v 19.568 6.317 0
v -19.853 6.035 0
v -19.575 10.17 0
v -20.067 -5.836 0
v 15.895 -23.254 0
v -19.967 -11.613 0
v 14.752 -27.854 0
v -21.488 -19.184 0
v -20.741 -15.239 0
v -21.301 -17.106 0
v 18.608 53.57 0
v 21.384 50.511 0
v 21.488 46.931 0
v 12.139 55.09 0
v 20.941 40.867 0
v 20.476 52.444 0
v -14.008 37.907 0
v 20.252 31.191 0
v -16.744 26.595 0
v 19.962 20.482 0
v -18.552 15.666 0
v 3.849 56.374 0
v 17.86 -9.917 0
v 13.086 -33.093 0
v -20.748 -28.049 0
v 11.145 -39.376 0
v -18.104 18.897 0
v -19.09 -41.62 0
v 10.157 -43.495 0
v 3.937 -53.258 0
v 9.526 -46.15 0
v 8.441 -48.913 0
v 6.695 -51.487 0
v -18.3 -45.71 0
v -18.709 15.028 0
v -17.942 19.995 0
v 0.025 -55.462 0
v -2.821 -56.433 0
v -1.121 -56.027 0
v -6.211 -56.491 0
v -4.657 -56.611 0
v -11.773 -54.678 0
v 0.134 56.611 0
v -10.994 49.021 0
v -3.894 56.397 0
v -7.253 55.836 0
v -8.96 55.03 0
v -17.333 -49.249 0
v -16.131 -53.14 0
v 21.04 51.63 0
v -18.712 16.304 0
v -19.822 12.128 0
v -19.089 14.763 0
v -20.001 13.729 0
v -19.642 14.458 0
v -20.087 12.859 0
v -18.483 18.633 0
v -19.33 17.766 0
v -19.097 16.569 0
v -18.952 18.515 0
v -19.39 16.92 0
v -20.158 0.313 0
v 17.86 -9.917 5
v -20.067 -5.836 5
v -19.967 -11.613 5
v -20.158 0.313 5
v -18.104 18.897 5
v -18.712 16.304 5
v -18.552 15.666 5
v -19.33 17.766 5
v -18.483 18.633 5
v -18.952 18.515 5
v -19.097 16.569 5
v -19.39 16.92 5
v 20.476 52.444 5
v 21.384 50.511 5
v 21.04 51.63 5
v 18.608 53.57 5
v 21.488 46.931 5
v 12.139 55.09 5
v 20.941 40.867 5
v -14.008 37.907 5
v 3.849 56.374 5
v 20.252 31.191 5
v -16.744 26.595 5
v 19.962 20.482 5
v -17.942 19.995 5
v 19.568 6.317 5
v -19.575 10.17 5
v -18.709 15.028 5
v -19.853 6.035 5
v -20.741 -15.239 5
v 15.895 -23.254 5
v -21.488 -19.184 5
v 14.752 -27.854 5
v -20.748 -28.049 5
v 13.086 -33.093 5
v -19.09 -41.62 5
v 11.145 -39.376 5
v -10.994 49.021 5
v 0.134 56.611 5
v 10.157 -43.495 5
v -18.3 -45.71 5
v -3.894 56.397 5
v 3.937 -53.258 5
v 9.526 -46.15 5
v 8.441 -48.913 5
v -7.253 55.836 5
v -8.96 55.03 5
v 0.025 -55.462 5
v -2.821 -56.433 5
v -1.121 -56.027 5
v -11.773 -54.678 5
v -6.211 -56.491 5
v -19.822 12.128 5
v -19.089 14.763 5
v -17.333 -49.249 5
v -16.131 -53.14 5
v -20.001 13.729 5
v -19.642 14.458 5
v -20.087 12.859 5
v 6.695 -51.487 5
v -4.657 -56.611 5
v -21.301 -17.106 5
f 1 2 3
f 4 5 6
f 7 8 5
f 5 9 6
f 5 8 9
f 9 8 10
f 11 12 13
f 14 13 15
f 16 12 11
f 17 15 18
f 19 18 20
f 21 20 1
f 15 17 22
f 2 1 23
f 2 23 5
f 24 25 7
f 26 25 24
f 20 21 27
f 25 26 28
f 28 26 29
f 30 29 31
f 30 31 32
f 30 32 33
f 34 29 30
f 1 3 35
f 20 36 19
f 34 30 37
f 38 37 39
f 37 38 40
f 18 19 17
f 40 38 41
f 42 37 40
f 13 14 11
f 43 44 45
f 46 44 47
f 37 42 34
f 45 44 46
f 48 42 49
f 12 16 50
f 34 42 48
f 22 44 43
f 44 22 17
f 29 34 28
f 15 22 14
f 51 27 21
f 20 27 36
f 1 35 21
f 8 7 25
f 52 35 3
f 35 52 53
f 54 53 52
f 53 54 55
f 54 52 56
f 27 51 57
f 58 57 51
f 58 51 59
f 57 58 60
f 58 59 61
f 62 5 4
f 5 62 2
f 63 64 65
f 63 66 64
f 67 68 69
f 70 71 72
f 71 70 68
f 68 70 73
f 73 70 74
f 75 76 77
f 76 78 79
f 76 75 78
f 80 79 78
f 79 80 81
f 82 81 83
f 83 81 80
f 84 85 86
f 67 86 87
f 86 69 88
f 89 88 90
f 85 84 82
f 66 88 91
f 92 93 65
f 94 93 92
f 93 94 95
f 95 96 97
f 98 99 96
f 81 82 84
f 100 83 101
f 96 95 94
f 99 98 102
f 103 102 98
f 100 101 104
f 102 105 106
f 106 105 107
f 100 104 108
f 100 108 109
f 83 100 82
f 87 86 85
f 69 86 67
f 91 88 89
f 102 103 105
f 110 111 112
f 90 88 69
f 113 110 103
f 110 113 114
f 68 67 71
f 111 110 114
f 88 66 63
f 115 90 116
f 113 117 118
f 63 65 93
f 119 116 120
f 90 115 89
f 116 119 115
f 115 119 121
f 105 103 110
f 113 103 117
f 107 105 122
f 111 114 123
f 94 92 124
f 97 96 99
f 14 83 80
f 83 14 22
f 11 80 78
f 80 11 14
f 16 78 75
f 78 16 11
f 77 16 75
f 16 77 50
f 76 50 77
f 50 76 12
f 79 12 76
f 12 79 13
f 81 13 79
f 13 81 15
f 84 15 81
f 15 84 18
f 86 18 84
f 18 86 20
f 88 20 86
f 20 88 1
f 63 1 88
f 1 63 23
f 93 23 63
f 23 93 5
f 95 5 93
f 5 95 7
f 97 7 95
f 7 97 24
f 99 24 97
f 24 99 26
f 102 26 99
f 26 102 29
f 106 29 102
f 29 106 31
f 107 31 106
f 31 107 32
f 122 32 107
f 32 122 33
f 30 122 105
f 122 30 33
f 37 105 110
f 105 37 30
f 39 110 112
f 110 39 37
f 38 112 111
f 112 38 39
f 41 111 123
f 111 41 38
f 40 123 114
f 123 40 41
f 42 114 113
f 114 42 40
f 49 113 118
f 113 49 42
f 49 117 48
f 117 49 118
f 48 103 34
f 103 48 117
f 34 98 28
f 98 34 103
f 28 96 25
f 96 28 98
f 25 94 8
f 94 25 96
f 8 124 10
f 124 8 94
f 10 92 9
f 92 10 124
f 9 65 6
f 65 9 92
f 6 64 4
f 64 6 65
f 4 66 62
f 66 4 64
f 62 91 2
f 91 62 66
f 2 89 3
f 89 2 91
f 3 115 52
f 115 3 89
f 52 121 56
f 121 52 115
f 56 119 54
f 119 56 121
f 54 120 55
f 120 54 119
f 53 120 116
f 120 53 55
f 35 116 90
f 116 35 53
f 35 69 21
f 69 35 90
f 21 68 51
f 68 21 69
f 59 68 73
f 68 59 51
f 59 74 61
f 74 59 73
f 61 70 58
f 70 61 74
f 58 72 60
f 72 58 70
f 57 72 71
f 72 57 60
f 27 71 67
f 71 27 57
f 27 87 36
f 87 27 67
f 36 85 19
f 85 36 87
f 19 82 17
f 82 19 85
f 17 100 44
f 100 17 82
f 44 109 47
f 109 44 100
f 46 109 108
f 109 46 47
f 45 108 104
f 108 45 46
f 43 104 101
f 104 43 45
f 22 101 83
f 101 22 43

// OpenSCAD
// Generated by inkscape 0.0 + inkscape-paths2openscad 0.27
// Sun Oct 29 23:55:14 2023 from "halloween.tiff.svg"

// Module names are of the form poly_<inkscape-path-id>().  As a result,
// you can associate a polygon in this OpenSCAD program with the corresponding
// SVG element in the Inkscape document by looking for the XML element with
// the attribute id="inkscape-path-id".

// fudge value is used to ensure that subtracted solids are a tad taller
// in the z dimension than the polygon being subtracted from.  This helps
// keep the resulting .stl file manifold.
fudge = 0.1;
user_unit_scale_x = 1.0;
user_unit_scale_y = 1.0;
custom_scale_x = 1;
custom_scale_y = 1;
zsize = 5.00;
line_fn = 4;
min_line_width = 1.0;
line_width_scale = 1.0;
function min_line_mm(w) = max(min_line_width, w * line_width_scale) * 1;


path7_0_center = [0.000000,0.000000];
path7_0_points = [[-6.211141,56.491387],[-11.773241,54.678287],[-16.131421,53.140387],[-17.333261,49.249287],[-18.299491,45.710305],[-19.090436,41.619609],[-20.747921,28.048917],[-21.487982,19.183951],[-21.300618,17.106103],[-20.740921,15.239217],[-19.967180,11.613437],[-20.066761,5.835937],[-20.158250,-0.312855],[-19.853401,-6.034583],[-19.575395,-10.170069],[-19.822201,-12.128343],[-20.087007,-12.859070],[-20.000895,-13.729269],[-19.642141,-14.457659],[-19.089021,-14.762963],[-18.709377,-15.028199],[-18.551471,-15.665893],[-18.711741,-16.303595],[-19.097071,-16.568833],[-19.390442,-16.920491],[-19.329611,-17.765973],[-18.951794,-18.514595],[-18.483031,-18.633383],[-18.104140,-18.897215],[-17.942381,-19.994553],[-16.743468,-26.595121],[-14.007776,-37.906939],[-10.993804,-49.021308],[-8.960051,-55.029526],[-7.253416,-55.835790],[-3.894304,-56.397304],[0.134142,-56.610912],[3.848779,-56.373461],[12.138859,-55.090539],[18.608549,-53.569603],[20.475935,-52.443671],[21.040405,-51.630469],[21.384400,-50.510610],[21.487982,-46.931430],[20.940719,-40.867143],[20.252429,-31.190993],[19.962419,-20.481553],[19.567900,-6.316918],[17.860199,9.917267],[15.895121,23.253799],[14.752035,27.853816],[13.086309,33.092607],[11.144568,39.376384],[10.157389,43.495277],[9.526349,46.149821],[8.440839,48.912897],[6.695168,51.486579],[3.937319,53.258157],[0.024599,55.461627],[-1.120688,56.026963],[-2.820621,56.433081],[-4.656934,56.610912],[-6.211361,56.491387],[-6.211141,56.491387]];
module poly_path7(h, w, s, res=line_fn)
{
  scale([custom_scale_x, -custom_scale_y, 1]) union()
  {
    translate (path7_0_center) linear_extrude(height=h, convexity=10, scale=0.01*s)
      translate (-path7_0_center) polygon(path7_0_points);
  }
}

module halloween_final(h)
{
  difference()
  {
    union()
    {
      translate ([0,0,0]) poly_path7(h, min_line_mm(0.601957), 100.0);
    }
    union()
    {
    }
  }
}

halloween_final(zsize);
